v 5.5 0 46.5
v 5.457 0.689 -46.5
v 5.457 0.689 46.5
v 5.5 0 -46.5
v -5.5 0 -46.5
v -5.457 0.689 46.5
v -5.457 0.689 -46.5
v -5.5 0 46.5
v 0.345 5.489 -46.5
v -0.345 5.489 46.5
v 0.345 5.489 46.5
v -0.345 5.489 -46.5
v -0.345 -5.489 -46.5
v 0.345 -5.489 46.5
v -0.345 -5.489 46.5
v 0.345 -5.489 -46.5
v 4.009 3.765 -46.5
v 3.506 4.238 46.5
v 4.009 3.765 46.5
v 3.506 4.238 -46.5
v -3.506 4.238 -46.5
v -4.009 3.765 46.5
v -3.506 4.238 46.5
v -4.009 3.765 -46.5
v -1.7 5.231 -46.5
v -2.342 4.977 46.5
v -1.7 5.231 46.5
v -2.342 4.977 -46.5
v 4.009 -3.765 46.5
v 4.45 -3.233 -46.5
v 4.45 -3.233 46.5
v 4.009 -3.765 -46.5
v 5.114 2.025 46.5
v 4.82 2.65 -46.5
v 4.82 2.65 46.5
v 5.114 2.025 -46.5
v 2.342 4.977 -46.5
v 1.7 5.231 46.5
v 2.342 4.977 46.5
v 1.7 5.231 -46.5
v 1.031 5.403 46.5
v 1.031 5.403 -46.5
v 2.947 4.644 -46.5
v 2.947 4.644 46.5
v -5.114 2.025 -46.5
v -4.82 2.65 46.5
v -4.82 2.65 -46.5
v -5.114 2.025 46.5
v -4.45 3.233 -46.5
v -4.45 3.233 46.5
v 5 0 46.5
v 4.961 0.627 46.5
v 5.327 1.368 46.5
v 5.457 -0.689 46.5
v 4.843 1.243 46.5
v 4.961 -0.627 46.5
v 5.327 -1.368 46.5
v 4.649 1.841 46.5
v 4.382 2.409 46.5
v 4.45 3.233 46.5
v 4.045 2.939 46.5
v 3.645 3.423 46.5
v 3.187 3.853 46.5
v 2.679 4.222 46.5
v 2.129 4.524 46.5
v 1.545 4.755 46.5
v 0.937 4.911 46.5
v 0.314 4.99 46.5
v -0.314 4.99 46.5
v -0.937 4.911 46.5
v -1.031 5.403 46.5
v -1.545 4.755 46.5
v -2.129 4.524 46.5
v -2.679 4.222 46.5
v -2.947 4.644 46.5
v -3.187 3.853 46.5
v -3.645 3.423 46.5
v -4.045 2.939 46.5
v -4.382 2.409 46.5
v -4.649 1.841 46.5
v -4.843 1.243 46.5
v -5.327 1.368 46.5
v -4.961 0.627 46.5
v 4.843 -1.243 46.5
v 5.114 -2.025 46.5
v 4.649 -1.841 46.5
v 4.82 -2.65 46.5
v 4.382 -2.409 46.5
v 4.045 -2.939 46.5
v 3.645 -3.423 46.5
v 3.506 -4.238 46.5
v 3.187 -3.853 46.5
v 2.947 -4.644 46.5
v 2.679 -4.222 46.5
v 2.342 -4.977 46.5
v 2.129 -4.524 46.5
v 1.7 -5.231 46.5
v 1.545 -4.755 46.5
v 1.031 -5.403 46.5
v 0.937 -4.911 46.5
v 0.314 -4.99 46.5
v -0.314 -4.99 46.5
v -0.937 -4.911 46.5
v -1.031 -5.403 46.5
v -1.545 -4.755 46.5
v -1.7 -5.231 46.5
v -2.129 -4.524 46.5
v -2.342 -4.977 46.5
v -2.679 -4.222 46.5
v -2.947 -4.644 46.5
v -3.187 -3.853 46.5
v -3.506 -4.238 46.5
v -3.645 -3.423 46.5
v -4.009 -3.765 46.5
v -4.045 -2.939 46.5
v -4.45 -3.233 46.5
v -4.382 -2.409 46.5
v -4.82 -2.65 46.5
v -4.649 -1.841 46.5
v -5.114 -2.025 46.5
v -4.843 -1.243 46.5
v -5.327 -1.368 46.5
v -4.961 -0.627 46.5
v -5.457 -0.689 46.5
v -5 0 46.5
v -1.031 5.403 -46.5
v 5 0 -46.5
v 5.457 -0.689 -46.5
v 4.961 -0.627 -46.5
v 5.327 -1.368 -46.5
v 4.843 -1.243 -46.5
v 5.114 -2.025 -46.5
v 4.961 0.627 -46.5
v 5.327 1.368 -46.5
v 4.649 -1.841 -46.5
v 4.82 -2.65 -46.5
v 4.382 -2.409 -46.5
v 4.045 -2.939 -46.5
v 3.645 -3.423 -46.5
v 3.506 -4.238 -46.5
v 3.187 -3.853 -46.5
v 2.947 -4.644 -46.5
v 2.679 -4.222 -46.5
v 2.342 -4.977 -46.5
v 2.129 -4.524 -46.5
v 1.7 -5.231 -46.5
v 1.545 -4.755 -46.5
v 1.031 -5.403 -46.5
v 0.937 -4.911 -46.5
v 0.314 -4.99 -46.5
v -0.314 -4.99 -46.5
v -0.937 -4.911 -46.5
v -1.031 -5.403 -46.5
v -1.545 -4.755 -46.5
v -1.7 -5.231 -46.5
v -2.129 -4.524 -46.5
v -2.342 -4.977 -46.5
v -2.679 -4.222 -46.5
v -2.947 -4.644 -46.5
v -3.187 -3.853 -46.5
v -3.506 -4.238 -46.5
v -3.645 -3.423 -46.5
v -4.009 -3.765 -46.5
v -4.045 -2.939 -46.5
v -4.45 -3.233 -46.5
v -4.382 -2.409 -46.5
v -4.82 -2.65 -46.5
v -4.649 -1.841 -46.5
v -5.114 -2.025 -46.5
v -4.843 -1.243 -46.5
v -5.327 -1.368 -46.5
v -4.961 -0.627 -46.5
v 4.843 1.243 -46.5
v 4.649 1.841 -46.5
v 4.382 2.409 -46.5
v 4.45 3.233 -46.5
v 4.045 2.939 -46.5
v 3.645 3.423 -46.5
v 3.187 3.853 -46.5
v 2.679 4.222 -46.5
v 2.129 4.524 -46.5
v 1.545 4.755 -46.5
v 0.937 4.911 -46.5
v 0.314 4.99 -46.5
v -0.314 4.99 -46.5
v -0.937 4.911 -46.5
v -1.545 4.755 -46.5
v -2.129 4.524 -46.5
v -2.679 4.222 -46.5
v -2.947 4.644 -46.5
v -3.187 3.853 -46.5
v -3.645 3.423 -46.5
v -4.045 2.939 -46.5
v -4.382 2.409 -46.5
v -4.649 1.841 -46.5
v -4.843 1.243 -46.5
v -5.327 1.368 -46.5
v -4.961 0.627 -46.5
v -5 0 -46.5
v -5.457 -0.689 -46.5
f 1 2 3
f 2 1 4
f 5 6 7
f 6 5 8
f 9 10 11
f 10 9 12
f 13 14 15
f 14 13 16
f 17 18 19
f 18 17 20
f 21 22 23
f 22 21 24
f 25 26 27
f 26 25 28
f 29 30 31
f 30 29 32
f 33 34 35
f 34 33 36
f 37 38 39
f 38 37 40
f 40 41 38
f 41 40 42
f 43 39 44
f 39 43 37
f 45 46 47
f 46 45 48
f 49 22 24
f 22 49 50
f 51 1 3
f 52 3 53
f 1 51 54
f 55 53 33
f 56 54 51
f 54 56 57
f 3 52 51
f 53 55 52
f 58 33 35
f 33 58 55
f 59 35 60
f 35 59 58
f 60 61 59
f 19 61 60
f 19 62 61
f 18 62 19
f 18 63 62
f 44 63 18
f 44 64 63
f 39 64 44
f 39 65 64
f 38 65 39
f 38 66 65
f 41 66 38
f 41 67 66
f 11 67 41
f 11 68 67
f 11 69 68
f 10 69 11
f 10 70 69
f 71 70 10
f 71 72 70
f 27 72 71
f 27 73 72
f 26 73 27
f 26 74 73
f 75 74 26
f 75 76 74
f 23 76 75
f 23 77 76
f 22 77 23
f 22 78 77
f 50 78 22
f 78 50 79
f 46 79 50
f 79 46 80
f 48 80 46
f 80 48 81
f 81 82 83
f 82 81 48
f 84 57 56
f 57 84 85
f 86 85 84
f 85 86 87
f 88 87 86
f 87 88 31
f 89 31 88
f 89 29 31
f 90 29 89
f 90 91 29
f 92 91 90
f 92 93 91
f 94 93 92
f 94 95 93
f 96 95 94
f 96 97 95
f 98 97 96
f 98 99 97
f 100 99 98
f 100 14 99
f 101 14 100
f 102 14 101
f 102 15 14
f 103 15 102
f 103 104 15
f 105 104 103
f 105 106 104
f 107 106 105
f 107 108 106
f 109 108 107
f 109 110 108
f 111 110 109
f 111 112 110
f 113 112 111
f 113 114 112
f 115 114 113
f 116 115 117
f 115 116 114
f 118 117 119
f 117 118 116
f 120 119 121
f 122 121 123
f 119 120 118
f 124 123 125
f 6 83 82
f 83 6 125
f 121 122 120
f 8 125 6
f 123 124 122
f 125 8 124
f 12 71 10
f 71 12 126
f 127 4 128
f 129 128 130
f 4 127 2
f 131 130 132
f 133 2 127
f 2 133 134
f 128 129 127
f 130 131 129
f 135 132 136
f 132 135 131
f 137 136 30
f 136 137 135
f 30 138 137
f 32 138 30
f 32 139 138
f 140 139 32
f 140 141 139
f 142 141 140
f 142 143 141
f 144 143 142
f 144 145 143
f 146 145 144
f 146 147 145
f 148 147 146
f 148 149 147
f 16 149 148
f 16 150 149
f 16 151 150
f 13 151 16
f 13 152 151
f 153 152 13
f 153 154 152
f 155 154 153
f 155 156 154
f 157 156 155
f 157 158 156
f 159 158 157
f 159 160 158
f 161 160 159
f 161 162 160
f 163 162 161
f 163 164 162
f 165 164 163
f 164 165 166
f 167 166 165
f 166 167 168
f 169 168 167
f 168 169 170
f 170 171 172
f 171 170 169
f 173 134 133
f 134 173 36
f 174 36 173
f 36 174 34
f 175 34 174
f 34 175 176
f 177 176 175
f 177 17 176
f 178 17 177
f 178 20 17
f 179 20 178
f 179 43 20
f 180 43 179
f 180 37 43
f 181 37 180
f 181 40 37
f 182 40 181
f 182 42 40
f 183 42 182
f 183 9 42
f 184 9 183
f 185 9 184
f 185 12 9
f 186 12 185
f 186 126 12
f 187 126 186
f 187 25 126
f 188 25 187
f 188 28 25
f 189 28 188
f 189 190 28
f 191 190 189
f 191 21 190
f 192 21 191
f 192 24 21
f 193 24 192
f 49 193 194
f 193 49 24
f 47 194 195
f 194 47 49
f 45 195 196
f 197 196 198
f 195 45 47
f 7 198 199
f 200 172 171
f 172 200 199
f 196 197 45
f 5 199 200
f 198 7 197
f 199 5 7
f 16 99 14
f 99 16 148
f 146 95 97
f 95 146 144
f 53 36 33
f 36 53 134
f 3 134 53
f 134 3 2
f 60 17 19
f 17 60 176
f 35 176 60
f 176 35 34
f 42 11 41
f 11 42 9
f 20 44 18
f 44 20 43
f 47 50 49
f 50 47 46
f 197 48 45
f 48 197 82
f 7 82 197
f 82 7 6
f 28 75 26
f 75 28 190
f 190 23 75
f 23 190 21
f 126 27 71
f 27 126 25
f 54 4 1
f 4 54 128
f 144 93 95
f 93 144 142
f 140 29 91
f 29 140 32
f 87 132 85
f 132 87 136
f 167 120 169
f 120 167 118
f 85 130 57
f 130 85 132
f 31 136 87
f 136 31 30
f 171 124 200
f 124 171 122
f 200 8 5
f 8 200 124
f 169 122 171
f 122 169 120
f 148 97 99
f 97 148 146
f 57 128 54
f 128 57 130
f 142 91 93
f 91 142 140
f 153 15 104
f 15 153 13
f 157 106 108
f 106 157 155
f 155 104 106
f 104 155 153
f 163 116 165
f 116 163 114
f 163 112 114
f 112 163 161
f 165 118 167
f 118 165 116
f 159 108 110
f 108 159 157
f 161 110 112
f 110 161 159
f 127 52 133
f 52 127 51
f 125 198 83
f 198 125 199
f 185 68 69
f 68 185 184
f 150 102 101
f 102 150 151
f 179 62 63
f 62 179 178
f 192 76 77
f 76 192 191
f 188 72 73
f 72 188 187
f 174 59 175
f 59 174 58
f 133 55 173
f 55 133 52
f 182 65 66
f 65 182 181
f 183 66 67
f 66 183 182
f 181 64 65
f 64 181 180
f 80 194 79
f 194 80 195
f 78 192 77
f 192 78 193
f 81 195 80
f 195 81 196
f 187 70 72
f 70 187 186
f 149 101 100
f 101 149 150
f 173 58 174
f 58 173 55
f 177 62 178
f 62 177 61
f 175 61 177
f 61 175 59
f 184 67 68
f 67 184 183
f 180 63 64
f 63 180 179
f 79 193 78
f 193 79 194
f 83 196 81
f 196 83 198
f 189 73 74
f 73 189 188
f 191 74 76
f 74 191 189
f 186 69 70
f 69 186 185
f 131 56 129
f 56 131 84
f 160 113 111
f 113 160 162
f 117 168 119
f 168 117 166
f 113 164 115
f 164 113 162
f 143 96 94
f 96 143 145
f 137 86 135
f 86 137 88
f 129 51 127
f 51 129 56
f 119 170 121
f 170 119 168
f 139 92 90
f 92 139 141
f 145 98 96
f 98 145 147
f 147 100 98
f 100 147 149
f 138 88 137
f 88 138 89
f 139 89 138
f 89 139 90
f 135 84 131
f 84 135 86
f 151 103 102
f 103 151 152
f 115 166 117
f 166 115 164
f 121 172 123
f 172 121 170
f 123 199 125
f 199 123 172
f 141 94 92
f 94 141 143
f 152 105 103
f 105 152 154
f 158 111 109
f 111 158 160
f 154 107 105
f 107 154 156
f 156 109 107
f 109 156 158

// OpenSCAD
$fn = 50;


difference() {
	union() {
		translate(v = [0, 0, -46.5000000000]) {
			cylinder(h = 93, r = 5.5000000000);
		}
	}
	union() {
		translate(v = [0, 0, -100.0000000000]) {
			cylinder(h = 200, r = 5);
		}
	}
}
